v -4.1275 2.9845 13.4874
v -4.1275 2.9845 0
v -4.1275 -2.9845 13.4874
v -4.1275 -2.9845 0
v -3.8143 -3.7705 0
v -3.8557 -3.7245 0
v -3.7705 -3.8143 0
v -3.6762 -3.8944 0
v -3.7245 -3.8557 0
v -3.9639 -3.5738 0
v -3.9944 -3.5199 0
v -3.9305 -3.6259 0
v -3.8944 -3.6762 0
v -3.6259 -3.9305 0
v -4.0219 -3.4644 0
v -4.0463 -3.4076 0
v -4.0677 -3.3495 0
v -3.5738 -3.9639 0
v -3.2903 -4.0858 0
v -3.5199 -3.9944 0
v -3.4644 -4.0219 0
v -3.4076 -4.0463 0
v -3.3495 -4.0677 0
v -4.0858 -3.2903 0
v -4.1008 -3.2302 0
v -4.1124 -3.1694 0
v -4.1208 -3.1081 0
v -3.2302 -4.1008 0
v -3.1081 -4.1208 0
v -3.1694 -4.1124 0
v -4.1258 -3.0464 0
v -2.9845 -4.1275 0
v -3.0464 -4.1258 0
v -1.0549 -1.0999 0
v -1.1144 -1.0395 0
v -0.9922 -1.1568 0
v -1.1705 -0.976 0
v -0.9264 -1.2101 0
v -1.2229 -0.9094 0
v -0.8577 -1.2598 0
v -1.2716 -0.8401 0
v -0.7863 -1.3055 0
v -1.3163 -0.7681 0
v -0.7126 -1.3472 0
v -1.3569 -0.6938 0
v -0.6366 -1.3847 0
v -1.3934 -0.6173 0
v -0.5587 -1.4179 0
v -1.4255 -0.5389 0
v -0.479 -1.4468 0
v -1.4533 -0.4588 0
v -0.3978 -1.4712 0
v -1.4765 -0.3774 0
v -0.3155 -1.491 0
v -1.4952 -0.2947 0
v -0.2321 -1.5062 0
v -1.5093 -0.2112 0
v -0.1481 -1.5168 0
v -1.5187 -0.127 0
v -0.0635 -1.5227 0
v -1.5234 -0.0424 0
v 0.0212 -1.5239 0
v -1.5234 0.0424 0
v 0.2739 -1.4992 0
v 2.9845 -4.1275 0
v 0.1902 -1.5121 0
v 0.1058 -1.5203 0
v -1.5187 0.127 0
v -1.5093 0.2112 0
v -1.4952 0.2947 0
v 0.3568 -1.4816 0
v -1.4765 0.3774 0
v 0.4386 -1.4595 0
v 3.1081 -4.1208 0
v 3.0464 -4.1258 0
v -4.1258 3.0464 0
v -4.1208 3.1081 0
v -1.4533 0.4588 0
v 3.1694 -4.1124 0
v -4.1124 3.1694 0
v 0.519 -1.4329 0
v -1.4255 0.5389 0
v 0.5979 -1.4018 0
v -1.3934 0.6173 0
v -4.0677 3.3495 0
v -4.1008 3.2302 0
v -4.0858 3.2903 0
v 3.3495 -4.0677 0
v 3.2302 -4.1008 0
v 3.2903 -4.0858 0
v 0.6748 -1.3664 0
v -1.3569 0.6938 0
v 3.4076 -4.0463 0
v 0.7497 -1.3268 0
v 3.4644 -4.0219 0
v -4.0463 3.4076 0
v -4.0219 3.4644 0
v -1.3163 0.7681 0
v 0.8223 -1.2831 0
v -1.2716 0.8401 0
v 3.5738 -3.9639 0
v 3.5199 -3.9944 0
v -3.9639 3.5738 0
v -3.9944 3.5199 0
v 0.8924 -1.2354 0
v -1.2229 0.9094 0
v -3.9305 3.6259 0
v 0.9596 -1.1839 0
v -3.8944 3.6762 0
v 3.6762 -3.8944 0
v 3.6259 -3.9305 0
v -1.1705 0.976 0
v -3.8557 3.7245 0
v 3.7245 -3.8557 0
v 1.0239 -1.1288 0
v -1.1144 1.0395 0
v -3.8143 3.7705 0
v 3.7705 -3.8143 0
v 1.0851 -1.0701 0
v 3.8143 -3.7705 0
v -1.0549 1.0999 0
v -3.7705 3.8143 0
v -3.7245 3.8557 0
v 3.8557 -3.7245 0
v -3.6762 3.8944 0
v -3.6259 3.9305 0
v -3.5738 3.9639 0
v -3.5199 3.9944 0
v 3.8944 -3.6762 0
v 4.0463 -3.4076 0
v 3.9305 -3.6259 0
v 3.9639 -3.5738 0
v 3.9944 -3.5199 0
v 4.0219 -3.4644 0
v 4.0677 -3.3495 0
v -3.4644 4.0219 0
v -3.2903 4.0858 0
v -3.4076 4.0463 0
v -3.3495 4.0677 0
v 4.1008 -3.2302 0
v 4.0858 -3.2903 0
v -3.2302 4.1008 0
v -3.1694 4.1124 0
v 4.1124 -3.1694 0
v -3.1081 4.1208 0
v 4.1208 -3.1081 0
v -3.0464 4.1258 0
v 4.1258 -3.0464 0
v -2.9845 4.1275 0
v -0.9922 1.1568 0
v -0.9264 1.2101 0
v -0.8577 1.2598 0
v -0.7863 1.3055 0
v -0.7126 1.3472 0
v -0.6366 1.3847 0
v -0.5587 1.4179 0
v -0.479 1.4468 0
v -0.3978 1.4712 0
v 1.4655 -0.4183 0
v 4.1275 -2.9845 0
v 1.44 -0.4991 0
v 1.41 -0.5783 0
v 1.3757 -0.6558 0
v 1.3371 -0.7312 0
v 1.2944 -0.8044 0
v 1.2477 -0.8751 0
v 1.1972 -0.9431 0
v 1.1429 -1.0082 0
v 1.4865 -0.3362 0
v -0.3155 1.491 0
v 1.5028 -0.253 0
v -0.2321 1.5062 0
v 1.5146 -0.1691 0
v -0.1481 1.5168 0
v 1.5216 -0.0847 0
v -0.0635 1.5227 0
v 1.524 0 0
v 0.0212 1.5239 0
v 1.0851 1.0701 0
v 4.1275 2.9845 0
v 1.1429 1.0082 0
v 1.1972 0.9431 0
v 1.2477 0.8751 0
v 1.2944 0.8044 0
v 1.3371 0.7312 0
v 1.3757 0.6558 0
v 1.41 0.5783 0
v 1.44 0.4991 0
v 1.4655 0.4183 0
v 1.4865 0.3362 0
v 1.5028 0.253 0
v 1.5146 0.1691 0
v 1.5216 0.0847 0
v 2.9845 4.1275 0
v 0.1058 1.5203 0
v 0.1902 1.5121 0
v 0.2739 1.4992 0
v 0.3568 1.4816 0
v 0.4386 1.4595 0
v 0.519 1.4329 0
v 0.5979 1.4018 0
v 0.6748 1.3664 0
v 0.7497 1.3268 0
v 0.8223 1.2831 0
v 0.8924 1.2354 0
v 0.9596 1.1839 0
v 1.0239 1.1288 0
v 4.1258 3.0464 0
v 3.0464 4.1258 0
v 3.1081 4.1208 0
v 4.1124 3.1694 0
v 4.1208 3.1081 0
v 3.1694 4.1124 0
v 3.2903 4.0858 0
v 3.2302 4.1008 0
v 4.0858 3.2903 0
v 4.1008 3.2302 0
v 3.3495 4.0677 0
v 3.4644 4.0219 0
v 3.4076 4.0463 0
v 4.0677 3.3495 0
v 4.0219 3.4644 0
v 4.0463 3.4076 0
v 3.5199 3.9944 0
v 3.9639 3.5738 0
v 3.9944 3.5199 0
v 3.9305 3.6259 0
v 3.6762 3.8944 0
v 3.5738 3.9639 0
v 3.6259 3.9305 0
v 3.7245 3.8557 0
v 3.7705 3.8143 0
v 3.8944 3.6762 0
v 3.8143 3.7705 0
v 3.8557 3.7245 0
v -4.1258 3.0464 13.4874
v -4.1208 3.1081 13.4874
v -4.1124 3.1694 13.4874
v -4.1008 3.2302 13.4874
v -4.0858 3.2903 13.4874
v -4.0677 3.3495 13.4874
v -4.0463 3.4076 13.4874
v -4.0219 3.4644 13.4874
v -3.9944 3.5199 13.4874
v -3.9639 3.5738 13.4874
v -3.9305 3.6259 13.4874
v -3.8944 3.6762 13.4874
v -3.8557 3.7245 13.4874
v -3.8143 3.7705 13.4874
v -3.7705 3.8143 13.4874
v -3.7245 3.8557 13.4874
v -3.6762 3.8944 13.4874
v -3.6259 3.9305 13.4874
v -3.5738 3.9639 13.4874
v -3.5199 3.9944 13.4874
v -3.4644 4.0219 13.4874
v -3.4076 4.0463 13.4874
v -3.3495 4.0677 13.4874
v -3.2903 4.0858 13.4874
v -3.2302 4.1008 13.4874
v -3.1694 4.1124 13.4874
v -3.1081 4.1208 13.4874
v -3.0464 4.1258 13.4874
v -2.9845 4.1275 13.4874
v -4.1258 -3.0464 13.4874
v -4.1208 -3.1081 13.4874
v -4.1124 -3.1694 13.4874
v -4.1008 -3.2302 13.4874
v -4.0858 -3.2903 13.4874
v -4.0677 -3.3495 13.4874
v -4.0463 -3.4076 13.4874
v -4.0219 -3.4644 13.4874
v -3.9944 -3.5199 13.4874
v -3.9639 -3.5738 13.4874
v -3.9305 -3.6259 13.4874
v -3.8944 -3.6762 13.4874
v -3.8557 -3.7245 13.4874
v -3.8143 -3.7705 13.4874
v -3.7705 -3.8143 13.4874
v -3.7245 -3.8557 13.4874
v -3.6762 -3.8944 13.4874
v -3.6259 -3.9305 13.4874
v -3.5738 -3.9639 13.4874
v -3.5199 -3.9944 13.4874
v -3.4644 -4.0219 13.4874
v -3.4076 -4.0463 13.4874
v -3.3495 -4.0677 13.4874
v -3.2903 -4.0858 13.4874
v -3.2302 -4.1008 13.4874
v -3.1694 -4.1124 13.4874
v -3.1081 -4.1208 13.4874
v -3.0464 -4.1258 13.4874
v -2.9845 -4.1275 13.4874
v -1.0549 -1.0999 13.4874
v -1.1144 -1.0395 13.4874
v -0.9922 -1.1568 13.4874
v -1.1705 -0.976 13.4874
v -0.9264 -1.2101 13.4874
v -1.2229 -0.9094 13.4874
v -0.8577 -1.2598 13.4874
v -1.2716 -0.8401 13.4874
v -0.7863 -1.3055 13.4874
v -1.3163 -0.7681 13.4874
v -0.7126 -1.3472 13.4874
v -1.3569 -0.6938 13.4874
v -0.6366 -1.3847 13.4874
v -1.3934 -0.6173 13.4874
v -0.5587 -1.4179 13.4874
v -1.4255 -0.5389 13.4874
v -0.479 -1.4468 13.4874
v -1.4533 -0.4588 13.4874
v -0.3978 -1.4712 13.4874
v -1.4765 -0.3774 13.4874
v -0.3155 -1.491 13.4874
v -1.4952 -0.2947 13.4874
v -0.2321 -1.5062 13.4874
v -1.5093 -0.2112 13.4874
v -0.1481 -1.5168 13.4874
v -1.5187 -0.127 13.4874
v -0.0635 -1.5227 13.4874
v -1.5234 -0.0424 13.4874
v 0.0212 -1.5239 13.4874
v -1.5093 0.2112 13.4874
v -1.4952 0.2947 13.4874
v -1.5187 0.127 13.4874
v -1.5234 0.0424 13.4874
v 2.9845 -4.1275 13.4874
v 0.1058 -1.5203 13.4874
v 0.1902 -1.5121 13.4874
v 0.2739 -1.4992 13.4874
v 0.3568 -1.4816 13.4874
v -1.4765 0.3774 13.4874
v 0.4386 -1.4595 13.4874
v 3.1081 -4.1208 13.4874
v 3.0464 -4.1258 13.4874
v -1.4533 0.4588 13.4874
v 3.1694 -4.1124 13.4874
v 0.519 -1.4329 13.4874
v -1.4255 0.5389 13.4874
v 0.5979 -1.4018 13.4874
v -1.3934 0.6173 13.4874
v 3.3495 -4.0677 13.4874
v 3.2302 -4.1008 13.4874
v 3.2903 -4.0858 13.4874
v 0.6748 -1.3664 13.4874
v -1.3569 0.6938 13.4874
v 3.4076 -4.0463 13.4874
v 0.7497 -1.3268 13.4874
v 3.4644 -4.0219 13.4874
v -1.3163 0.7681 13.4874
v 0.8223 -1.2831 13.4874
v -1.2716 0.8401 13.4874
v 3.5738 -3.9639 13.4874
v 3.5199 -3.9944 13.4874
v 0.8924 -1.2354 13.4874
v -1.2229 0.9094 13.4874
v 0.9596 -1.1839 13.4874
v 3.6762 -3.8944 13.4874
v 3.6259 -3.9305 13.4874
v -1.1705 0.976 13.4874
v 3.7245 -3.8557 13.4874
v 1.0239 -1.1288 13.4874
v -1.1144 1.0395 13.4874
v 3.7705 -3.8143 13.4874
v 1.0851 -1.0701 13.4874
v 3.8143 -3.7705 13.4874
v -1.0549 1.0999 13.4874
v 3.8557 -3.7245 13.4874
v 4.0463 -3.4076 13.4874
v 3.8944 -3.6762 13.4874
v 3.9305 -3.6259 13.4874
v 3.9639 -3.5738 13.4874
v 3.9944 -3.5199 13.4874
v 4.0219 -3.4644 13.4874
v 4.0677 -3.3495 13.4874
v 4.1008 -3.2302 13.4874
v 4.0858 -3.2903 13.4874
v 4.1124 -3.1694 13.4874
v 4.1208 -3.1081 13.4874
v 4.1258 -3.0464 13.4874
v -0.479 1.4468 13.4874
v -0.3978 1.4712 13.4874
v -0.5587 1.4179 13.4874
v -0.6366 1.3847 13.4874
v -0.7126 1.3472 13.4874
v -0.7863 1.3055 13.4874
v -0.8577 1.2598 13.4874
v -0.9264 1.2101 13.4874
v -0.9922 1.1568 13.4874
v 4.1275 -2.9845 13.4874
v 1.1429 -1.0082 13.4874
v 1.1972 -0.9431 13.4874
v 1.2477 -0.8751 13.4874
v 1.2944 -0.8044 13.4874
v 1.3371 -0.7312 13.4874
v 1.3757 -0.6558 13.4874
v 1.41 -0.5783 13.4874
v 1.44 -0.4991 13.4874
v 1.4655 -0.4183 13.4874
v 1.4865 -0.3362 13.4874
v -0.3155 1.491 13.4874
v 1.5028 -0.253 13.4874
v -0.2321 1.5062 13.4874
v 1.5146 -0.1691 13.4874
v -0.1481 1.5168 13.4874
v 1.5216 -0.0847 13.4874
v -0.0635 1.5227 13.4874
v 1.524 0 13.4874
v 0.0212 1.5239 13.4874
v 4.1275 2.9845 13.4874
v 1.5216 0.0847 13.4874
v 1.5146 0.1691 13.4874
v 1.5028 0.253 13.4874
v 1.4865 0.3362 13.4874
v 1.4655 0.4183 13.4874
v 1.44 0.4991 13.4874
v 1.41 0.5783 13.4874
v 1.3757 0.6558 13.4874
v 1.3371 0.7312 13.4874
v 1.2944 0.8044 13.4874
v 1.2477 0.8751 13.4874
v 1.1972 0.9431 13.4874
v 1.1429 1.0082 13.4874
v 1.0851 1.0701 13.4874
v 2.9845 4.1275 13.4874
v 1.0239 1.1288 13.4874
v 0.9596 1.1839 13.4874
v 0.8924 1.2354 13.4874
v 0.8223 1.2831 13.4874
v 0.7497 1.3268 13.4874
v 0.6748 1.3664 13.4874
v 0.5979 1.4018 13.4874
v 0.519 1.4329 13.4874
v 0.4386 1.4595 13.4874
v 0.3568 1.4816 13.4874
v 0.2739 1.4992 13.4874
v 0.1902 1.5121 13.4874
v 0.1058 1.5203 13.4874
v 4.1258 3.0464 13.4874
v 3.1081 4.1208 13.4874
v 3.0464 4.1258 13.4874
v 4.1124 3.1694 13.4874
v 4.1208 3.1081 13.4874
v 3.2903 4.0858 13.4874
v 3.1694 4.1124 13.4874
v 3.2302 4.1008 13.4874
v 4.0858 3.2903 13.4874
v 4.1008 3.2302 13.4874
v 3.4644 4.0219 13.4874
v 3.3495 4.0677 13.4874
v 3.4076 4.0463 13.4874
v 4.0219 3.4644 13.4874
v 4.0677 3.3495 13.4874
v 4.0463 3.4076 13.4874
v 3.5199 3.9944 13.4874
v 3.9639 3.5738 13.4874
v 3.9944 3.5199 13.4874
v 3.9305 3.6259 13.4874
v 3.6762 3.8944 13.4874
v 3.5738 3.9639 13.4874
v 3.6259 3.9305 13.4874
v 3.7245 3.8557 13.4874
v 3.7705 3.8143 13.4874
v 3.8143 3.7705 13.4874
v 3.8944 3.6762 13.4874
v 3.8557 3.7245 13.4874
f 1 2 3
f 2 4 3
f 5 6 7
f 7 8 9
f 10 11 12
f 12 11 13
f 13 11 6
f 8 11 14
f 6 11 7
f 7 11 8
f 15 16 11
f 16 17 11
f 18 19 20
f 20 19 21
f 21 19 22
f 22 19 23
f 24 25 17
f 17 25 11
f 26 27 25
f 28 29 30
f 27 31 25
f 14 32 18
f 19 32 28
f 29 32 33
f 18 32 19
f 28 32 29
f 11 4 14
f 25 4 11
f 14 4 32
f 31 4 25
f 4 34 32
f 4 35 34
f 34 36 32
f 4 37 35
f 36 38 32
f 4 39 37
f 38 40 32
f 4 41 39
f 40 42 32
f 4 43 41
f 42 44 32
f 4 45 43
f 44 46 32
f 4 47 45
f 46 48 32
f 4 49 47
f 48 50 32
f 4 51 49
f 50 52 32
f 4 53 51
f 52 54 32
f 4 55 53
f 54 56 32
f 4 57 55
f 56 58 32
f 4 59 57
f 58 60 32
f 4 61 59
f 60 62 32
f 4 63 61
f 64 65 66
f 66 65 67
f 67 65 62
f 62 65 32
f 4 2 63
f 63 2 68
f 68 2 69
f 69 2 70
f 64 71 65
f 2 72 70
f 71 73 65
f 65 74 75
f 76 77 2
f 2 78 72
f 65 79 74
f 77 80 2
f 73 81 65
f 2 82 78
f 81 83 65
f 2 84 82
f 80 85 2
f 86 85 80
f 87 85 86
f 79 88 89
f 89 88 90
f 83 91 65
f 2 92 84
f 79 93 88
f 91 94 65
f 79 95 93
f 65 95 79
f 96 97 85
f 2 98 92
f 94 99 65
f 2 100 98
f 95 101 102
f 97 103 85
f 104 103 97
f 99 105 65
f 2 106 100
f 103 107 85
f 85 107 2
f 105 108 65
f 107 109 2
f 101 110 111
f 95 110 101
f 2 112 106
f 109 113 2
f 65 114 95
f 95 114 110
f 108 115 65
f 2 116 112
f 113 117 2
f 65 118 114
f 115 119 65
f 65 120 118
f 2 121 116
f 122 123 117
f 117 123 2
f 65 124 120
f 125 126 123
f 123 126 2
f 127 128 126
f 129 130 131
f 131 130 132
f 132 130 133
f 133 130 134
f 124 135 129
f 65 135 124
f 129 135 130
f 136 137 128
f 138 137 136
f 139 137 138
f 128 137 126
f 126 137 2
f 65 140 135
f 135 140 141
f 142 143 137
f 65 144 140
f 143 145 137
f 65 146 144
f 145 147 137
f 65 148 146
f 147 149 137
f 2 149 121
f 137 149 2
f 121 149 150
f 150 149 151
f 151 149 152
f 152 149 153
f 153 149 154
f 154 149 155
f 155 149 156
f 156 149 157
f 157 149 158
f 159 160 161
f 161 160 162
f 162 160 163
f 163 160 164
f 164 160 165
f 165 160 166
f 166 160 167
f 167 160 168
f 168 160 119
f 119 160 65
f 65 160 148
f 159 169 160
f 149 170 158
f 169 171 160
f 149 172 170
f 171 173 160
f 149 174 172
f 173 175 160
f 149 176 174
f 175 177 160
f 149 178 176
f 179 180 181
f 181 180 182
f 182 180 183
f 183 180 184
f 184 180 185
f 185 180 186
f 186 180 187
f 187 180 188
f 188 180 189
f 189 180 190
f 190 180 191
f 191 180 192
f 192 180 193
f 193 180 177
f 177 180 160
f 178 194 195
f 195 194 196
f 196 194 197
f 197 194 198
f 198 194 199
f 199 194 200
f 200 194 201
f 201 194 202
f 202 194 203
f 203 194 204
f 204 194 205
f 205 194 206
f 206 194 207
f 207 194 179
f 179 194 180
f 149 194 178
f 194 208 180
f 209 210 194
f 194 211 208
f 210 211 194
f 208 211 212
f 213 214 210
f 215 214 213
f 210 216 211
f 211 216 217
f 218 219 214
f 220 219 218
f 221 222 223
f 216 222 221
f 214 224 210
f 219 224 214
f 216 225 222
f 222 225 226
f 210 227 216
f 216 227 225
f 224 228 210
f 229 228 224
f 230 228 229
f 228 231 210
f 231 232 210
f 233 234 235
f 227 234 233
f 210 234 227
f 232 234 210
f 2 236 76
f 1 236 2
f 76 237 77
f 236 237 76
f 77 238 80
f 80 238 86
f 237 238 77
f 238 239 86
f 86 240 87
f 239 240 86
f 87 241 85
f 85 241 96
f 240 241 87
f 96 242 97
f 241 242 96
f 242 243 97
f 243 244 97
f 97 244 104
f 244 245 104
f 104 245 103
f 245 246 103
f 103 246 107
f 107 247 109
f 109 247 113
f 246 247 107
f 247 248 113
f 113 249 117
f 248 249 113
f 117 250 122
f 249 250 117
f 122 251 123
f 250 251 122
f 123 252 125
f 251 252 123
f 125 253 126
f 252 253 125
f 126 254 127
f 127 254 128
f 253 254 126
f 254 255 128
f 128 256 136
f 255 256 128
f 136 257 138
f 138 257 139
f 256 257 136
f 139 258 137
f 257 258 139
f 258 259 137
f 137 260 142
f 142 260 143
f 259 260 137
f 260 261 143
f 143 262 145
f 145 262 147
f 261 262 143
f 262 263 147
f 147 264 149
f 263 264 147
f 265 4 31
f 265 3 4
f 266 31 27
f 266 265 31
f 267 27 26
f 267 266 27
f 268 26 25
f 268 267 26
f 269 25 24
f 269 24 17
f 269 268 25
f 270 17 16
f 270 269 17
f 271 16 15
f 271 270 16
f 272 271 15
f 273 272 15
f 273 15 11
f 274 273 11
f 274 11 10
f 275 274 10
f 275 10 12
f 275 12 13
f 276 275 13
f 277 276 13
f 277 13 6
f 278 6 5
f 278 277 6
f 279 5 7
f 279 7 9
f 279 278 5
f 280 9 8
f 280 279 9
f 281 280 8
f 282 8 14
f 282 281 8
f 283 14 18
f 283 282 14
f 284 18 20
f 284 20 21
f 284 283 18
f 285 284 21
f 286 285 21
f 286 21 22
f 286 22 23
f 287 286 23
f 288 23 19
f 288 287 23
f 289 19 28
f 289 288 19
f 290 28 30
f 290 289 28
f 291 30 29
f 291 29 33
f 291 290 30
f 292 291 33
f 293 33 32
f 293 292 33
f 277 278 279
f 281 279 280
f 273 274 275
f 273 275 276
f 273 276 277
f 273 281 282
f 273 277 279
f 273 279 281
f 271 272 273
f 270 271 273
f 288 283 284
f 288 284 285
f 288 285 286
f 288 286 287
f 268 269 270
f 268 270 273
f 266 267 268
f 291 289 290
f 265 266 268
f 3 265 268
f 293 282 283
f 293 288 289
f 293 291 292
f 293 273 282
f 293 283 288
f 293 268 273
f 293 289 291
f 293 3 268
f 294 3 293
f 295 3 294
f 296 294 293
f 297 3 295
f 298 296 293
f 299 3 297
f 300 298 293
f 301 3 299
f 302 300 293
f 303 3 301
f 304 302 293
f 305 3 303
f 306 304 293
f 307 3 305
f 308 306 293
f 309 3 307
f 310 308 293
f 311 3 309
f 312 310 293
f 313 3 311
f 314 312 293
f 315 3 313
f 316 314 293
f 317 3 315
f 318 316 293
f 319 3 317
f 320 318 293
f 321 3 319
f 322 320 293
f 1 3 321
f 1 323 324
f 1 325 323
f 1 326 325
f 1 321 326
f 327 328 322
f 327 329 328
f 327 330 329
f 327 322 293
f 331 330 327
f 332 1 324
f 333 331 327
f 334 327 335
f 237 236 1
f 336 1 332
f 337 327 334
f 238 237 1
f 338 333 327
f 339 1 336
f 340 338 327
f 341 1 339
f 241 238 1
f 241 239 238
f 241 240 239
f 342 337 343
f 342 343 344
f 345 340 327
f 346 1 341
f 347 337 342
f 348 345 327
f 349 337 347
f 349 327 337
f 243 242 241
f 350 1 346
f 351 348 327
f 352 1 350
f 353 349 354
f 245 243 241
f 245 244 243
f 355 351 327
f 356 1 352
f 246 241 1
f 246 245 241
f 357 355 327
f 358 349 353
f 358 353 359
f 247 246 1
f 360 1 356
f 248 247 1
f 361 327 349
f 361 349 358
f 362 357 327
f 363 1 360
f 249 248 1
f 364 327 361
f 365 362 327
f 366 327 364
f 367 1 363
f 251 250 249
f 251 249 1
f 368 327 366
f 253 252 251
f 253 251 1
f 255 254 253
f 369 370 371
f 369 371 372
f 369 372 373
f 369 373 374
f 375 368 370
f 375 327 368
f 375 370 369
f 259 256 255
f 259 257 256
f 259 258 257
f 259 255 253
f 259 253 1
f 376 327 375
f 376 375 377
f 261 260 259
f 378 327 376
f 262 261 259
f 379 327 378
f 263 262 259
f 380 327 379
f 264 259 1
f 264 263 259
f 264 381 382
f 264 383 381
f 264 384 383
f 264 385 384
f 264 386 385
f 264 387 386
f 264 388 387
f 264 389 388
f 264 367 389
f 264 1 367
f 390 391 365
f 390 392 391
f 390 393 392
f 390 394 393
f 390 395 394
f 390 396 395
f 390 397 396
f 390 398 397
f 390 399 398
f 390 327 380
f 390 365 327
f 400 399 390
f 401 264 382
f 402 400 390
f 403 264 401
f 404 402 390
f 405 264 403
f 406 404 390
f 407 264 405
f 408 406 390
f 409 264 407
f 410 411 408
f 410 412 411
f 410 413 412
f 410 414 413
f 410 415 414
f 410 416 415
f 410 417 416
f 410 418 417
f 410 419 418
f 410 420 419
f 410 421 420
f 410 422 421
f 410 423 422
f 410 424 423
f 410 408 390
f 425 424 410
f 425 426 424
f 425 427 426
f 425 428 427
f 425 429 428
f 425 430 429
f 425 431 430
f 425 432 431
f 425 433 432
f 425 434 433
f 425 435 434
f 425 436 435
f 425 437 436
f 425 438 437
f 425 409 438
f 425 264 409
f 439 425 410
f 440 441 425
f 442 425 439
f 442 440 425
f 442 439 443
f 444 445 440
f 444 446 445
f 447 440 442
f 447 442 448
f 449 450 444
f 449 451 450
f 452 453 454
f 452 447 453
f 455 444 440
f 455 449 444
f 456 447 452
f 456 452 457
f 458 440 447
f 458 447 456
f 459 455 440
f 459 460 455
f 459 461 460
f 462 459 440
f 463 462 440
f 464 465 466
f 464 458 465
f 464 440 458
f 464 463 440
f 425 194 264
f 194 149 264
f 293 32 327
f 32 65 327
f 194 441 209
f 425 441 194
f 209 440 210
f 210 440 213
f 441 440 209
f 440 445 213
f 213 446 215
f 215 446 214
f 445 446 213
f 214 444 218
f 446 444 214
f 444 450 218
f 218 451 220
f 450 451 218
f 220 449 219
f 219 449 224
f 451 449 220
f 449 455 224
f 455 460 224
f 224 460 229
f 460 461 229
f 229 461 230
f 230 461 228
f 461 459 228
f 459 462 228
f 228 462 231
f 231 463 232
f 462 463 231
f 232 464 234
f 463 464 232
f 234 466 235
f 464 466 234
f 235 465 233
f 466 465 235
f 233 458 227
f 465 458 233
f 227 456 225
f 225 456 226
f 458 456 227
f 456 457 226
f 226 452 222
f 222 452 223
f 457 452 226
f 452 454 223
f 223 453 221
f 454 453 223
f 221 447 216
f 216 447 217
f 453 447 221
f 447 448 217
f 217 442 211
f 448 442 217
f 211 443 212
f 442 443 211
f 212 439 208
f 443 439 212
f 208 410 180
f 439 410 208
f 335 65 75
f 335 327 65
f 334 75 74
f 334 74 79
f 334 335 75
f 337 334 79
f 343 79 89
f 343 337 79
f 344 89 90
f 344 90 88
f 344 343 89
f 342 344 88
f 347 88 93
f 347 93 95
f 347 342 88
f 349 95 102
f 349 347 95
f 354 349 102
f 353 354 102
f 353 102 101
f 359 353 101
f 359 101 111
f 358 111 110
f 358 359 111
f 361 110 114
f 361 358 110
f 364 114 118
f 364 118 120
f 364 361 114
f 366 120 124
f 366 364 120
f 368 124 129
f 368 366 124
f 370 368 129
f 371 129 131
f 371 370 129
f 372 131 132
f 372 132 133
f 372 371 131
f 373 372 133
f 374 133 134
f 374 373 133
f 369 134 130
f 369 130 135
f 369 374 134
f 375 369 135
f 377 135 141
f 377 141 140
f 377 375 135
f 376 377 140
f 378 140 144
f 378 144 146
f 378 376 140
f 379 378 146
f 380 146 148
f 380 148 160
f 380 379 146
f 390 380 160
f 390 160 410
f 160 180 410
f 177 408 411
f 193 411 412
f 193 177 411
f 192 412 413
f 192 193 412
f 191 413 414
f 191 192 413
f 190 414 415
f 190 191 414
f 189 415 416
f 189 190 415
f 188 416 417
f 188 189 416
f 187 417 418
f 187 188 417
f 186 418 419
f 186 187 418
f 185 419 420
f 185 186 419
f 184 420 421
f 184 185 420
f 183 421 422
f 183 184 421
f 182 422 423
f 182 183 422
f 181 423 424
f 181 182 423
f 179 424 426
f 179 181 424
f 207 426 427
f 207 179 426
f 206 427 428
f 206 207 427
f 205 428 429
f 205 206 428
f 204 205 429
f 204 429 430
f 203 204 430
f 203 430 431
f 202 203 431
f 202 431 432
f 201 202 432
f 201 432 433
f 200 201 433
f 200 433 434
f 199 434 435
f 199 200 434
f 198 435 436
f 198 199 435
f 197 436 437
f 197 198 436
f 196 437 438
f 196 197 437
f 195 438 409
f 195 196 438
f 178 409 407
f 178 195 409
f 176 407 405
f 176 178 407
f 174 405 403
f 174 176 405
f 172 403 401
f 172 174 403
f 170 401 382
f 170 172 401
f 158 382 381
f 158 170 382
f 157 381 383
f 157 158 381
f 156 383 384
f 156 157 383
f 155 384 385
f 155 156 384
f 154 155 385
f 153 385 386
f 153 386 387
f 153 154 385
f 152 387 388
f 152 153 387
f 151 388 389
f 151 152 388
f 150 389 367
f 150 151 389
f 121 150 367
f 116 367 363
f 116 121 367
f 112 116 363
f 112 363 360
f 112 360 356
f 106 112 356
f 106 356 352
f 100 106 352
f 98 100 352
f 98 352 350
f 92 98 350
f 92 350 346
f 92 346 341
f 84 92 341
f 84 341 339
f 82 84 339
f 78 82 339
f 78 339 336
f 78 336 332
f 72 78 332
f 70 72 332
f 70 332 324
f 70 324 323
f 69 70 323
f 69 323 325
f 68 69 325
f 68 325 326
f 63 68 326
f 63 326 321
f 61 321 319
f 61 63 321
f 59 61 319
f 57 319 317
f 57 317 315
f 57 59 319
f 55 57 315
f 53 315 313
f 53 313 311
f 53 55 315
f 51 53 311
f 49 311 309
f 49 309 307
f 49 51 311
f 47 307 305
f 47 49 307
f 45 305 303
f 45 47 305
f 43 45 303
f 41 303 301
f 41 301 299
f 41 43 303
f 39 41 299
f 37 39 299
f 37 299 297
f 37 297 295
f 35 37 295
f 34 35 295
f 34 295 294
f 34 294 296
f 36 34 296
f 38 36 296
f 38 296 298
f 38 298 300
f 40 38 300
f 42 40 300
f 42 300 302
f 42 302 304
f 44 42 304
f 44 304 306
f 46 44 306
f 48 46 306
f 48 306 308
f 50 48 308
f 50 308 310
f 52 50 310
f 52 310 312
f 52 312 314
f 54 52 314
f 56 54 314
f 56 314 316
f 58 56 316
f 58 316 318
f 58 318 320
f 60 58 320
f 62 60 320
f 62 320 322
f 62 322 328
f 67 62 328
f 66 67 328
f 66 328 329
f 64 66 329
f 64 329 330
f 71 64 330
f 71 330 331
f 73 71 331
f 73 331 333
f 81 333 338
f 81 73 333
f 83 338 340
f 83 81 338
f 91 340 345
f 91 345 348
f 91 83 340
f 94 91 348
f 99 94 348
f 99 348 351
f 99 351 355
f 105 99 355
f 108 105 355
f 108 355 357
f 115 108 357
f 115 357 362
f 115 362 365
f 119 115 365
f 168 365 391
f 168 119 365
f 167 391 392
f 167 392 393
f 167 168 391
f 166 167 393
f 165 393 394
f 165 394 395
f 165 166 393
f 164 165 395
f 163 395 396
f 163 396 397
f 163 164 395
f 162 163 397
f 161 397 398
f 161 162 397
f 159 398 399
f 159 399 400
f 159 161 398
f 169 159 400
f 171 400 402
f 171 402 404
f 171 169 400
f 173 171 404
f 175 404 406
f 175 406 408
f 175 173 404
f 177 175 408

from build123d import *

# Parameters (mm, degrees)
SKETCH_W    = 8.255
SKETCH_H    = 8.255
PAD_DEPTH   = 13.4874
SKETCH001_R = 1.524
HOLE_DEPTH  = 24.9936
FILLET_R    = 1.143


with BuildPart() as part:
    # Sketch → Pad (new body)
    with BuildSketch(Plane.XY):
        Rectangle(SKETCH_W, SKETCH_H)
    extrude(amount=PAD_DEPTH)

    # Sketch001 (on Face6 of Pad) → Hole (cut)
    with BuildSketch(Plane.XY.offset(13.4874)):
        Circle(SKETCH001_R)
    extrude(amount=-HOLE_DEPTH, mode=Mode.SUBTRACT)

    # Fillet
    fillet_edges = [part.edges().sort_by_distance(p)[0] for p in [
        (-4.1275, 4.1275, 6.7437),
        (-4.1275, -4.1275, 6.7437),
        (4.1275, -4.1275, 6.7437),
        (4.1275, 4.1275, 6.7437),
    ]]
    fillet(fillet_edges, radius=FILLET_R)


solid = part.part
